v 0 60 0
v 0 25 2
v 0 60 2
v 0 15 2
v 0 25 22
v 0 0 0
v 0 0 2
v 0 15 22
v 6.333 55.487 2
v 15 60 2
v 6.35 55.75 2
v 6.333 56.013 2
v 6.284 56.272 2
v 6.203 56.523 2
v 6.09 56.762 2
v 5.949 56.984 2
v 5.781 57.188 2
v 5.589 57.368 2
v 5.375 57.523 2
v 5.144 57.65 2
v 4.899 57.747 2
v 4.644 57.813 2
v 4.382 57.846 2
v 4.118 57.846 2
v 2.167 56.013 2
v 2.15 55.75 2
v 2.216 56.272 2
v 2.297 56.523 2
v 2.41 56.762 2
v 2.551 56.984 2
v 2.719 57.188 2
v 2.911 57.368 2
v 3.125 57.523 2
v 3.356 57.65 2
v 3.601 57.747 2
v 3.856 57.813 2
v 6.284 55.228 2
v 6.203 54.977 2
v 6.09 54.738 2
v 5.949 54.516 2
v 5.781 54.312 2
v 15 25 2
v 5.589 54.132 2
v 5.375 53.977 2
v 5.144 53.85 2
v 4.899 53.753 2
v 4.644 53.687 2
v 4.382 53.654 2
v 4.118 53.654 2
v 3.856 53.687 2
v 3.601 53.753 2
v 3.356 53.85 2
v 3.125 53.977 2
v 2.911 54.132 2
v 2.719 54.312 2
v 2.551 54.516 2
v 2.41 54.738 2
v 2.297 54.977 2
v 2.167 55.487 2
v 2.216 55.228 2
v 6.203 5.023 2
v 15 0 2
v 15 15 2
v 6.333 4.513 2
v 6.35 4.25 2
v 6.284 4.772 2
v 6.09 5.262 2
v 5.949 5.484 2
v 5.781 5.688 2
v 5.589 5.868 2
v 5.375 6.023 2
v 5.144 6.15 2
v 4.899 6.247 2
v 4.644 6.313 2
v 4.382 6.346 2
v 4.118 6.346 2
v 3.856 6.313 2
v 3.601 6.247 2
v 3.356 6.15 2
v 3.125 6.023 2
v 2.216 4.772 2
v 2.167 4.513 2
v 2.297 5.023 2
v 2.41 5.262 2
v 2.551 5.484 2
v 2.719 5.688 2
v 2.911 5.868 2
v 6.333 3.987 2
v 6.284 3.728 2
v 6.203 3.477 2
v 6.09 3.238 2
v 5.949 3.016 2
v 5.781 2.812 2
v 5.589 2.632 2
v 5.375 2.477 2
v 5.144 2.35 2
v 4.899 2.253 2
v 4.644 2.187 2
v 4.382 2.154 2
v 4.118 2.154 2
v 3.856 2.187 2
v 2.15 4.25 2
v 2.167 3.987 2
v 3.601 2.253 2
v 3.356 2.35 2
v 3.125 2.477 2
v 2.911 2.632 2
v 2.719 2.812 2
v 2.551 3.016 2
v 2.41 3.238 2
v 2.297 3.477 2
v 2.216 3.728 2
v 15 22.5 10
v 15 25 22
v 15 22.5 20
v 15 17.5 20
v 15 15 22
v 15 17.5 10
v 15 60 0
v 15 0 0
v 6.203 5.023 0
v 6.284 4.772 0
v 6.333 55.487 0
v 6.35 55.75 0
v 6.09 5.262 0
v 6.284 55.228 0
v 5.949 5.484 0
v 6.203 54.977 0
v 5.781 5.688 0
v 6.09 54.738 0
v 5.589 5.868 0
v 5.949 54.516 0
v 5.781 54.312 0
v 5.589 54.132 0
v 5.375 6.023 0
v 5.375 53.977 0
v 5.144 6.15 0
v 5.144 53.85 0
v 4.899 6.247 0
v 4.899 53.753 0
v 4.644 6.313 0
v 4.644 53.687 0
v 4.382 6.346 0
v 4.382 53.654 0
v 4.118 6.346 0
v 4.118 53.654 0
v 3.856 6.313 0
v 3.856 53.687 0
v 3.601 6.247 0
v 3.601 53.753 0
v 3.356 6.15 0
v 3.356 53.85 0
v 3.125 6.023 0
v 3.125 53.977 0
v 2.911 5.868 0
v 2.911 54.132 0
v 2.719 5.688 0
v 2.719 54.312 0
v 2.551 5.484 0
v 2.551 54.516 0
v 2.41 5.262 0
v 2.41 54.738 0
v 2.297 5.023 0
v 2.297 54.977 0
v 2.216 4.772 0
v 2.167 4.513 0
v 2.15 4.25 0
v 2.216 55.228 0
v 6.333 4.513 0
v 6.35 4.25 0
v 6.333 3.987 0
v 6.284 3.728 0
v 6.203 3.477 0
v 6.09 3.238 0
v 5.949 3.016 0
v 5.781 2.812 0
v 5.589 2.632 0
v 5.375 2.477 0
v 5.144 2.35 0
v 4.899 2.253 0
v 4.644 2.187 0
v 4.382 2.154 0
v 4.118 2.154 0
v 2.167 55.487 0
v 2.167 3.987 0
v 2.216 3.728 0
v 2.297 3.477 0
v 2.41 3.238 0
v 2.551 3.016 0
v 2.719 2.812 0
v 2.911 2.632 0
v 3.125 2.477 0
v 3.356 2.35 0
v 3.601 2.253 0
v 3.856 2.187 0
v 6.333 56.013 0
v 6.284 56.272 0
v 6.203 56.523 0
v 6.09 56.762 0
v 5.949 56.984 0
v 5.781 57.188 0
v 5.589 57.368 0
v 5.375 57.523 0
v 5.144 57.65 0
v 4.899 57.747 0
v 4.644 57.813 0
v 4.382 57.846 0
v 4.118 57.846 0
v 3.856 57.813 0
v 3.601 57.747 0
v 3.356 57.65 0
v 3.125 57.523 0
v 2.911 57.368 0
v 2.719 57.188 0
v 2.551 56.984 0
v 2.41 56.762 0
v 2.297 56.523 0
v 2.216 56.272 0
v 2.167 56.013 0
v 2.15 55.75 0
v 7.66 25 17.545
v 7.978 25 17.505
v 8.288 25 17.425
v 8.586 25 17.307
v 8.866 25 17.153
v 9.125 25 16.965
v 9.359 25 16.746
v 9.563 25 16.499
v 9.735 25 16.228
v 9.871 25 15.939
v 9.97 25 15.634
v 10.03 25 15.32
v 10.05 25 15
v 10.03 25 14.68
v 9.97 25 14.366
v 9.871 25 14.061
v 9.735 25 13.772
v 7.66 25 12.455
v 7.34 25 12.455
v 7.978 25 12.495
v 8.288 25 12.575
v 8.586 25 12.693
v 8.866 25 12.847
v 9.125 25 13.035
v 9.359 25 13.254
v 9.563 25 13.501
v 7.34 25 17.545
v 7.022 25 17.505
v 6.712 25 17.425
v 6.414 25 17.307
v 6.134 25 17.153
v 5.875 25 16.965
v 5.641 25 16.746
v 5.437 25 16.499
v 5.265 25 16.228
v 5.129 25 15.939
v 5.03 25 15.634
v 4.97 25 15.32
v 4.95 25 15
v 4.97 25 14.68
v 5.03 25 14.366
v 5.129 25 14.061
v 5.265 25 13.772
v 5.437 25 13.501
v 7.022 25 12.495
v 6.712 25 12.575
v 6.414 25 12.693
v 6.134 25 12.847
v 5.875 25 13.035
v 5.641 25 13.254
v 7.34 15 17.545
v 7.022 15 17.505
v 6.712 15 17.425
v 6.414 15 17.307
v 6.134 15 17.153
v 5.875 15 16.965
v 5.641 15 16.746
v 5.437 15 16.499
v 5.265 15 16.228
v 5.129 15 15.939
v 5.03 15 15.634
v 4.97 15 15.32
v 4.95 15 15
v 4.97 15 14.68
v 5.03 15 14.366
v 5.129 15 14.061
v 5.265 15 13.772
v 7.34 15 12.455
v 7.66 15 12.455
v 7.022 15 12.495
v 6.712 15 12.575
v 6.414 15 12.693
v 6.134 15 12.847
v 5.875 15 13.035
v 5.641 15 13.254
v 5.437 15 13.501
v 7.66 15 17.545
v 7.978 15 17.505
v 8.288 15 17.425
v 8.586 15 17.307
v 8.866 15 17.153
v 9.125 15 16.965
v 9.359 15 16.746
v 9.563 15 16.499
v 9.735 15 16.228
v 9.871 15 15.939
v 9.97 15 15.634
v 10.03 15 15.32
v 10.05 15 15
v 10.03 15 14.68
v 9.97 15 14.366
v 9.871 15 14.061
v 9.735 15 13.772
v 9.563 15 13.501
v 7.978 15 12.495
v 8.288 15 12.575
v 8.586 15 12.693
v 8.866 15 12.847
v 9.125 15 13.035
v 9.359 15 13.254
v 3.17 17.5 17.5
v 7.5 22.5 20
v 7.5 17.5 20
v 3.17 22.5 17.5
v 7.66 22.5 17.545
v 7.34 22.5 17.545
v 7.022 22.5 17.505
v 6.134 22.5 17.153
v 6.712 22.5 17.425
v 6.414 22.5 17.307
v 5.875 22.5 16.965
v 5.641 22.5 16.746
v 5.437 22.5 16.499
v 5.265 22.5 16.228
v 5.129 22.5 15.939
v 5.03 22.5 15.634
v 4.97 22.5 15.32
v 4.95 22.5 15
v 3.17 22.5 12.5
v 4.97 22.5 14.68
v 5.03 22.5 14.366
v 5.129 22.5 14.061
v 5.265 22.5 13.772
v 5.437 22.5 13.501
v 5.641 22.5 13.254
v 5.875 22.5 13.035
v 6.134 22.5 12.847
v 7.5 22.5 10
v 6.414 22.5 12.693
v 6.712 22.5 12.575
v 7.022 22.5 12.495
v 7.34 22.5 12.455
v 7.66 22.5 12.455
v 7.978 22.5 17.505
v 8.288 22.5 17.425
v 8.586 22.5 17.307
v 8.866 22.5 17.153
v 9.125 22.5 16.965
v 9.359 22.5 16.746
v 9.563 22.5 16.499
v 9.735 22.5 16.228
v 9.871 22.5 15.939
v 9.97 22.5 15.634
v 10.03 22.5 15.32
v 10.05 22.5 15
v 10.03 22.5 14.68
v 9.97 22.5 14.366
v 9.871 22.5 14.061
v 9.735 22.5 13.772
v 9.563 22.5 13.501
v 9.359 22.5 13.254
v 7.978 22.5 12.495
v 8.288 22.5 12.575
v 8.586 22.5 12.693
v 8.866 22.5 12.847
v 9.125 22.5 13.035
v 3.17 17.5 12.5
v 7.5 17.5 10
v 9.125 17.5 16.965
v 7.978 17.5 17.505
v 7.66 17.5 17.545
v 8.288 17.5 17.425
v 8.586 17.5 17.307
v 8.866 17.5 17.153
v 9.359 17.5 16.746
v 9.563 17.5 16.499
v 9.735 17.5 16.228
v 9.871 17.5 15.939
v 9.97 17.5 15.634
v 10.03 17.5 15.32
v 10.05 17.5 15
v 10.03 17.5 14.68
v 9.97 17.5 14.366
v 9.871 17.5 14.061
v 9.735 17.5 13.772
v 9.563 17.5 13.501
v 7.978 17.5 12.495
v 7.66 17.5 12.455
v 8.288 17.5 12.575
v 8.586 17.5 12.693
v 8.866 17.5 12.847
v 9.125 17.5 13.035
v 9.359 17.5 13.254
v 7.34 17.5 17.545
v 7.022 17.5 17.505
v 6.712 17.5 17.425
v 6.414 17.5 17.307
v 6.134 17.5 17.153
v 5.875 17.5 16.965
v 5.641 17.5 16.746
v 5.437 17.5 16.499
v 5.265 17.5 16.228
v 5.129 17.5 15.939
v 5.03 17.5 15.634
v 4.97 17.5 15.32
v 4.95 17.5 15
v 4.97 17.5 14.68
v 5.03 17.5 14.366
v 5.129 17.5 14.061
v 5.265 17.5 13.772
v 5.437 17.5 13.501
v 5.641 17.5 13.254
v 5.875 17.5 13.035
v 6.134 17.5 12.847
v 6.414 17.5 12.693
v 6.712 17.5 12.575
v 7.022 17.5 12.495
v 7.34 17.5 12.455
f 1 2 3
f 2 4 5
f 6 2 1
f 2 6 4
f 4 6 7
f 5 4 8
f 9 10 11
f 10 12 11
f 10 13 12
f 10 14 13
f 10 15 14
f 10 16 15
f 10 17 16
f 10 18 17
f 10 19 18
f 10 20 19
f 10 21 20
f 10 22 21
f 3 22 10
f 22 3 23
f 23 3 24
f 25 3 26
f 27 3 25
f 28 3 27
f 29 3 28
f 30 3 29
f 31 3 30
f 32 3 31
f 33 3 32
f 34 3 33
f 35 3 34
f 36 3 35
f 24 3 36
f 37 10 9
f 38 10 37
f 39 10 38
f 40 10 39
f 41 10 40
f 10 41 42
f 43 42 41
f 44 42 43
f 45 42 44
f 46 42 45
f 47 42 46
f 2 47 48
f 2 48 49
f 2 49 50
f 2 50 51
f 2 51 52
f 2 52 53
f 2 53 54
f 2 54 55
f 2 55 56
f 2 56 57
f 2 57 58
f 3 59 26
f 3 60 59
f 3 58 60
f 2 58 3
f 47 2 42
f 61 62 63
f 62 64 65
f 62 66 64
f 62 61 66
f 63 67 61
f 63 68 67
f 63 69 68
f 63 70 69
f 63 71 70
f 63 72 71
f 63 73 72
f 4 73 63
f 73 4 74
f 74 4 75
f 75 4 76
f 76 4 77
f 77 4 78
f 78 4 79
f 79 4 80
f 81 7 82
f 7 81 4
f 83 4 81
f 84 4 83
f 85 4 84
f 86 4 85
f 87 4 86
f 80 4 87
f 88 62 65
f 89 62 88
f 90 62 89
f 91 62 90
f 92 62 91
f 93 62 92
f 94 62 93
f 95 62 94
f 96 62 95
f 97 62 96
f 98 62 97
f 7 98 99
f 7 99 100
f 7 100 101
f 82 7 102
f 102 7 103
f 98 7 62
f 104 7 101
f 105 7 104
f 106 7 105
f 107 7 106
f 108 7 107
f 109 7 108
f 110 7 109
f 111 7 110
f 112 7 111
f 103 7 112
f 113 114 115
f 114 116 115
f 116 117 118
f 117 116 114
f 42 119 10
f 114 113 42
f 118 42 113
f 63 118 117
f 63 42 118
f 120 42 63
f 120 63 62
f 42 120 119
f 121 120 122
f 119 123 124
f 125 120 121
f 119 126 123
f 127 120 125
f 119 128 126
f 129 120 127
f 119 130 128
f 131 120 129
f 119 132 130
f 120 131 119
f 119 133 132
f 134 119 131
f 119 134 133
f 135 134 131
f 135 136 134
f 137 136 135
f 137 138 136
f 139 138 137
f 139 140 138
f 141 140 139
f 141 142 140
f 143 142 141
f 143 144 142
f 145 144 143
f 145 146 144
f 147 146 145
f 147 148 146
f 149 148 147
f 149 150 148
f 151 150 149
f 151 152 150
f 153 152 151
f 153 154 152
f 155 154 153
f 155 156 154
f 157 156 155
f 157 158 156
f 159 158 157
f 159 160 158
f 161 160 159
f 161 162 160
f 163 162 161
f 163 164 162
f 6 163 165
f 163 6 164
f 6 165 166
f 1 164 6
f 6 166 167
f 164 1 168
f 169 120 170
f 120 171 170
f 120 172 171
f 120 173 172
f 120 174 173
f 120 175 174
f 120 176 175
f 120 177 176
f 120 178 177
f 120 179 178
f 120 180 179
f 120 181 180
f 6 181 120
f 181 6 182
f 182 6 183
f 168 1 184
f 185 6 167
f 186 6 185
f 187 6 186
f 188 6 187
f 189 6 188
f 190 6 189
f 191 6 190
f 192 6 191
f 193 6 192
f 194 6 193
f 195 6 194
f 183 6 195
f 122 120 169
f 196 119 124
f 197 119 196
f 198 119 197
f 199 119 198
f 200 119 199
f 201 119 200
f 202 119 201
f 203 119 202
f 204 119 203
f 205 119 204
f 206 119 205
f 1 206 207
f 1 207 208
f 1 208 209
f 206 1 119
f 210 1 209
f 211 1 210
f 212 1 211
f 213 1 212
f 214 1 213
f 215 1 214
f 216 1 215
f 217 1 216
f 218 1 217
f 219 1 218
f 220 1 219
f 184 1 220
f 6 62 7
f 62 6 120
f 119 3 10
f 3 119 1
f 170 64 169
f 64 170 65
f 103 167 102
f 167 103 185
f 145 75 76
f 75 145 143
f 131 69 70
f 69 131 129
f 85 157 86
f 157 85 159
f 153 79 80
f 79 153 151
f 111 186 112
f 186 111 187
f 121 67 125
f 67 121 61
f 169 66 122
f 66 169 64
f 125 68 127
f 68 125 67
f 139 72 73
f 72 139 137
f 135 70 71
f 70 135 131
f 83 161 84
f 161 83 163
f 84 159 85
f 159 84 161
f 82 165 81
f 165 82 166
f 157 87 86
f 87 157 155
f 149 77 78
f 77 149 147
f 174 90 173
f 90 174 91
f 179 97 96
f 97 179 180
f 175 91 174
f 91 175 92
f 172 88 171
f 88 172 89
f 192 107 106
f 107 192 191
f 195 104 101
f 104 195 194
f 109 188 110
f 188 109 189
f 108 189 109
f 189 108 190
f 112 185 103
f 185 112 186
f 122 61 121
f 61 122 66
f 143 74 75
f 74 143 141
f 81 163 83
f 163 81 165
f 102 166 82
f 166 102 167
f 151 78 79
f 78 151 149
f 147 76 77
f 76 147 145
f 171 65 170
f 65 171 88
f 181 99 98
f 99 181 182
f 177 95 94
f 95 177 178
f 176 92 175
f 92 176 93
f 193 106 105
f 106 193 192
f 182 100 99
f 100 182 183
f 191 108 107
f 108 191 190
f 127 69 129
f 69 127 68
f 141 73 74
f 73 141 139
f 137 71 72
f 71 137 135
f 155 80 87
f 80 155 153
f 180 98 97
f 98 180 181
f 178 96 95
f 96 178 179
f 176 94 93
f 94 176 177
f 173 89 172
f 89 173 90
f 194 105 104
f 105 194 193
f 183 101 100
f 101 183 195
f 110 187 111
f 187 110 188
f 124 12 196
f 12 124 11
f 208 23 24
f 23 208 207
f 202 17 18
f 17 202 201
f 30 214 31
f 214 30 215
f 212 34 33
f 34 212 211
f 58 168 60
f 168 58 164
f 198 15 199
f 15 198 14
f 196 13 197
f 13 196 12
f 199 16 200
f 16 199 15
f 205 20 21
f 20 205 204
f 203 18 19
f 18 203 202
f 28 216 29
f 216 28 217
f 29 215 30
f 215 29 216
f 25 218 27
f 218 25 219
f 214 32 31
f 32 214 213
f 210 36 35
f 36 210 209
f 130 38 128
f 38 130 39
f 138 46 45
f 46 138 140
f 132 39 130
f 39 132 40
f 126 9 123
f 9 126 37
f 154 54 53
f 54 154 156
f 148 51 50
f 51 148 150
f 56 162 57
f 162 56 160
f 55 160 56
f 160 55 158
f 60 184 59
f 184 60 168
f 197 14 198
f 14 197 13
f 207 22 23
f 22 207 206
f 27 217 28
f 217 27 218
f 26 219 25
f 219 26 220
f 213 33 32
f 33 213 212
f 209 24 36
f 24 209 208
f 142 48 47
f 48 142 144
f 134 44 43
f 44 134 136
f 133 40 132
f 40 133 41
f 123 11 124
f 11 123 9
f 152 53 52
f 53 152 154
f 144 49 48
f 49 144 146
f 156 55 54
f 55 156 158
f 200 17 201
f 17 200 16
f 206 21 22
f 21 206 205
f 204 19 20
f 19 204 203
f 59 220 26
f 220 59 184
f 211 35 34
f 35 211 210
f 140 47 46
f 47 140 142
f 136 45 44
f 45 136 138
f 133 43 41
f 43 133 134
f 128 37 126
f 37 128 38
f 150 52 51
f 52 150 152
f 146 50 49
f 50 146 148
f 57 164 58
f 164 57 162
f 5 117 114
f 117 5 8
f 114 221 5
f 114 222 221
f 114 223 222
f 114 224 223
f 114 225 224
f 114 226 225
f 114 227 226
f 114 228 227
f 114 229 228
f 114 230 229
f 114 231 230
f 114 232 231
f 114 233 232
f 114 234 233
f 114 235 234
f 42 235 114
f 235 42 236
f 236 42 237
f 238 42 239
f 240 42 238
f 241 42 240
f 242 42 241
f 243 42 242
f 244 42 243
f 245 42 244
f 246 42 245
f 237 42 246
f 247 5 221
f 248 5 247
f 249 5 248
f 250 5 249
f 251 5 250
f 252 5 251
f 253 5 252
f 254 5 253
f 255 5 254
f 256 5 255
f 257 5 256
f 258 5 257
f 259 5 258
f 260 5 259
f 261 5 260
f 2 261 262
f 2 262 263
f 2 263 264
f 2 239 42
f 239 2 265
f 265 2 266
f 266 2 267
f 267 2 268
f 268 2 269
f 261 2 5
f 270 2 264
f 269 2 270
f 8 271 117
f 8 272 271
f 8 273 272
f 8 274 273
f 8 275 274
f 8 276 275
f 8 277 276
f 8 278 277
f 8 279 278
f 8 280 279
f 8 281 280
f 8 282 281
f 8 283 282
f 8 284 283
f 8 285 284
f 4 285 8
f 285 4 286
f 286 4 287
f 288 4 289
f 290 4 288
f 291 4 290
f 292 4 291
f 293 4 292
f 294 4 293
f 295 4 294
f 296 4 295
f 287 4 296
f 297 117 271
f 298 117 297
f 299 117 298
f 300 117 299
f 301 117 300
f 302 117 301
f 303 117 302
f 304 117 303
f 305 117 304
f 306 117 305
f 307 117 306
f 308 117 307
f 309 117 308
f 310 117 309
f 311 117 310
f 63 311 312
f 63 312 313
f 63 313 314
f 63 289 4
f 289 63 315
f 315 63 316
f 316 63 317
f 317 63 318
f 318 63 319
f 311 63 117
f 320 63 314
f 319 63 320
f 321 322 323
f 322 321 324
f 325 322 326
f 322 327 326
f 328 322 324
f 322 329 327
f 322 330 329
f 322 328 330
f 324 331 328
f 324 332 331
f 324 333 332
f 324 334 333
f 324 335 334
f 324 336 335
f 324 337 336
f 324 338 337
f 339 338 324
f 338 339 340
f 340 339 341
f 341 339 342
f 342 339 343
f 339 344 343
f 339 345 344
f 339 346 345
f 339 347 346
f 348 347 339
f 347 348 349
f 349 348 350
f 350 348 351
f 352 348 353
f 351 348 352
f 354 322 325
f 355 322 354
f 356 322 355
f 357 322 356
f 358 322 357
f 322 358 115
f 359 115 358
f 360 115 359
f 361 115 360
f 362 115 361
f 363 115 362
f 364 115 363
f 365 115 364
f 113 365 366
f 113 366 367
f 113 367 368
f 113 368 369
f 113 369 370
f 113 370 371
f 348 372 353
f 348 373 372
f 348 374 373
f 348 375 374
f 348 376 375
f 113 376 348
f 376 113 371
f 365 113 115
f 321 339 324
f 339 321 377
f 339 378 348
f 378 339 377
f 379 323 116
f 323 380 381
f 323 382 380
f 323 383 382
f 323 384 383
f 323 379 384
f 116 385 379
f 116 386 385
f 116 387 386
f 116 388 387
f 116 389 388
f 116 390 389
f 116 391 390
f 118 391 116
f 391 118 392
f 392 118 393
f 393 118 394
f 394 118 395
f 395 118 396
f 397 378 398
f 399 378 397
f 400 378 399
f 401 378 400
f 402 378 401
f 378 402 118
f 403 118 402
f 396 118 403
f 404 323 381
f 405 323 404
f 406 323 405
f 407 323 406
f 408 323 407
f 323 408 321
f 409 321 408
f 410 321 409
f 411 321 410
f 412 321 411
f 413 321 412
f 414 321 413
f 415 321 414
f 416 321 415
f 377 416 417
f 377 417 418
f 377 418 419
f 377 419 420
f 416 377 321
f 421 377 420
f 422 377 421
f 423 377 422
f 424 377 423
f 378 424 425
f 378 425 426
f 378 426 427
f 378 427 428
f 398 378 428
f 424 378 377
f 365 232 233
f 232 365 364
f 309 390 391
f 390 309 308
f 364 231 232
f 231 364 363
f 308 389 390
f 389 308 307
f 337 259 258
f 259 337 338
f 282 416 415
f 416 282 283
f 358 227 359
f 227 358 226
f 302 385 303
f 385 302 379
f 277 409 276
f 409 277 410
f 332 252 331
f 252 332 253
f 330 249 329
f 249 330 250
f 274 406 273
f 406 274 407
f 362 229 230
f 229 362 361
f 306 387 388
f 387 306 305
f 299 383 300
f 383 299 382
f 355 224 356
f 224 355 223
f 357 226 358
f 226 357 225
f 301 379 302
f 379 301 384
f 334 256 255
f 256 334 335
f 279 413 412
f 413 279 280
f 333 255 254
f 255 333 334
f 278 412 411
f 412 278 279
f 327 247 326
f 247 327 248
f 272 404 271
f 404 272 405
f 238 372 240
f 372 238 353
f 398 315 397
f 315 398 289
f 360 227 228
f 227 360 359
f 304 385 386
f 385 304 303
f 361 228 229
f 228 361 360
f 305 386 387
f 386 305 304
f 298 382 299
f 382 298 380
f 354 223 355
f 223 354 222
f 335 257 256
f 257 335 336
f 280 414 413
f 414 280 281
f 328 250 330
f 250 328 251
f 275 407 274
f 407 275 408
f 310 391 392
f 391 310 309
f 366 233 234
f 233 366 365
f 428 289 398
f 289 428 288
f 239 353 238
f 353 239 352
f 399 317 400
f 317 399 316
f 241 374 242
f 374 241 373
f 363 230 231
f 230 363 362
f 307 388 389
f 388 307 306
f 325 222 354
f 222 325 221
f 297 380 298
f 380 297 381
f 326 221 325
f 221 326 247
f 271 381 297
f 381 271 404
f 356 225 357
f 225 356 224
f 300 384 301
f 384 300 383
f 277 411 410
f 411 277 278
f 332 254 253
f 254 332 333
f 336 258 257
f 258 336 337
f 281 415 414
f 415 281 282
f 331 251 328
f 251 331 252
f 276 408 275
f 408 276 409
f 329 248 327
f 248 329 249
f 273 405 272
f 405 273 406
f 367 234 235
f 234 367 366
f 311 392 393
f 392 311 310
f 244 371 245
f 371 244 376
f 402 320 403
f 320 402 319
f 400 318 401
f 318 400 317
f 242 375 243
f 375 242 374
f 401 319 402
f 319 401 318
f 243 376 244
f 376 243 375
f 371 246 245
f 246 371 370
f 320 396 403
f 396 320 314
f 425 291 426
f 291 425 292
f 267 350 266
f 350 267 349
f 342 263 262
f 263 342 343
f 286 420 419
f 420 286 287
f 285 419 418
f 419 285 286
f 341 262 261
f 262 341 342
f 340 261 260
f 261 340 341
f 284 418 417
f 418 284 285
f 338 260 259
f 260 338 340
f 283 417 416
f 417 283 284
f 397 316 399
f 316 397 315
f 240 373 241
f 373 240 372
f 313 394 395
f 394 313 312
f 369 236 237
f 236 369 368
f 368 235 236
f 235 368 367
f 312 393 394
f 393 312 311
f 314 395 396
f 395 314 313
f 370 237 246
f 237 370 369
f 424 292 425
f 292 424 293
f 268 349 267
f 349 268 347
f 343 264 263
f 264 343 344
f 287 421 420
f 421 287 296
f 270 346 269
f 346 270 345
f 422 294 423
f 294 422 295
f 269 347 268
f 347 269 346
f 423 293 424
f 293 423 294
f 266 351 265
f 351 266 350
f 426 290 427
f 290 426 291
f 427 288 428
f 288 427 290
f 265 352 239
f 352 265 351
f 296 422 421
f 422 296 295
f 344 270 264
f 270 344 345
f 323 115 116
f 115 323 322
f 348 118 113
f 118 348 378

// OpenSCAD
$fn = 50;
platethickness = 2;

union(){
    difference(){
        cube([15, 60, platethickness]);
        translate([2.2 + 2.05, 2.2 + 2.05, 0]) cylinder(platethickness, 2.1, 2.1);
        translate([2.2 + 2.05, 60 - (2.2 + 2.05), 0]) cylinder(platethickness, 2.1, 2.1);
    }
    difference(){
        translate([0, 15, platethickness]) cube([15, 10, 20]);
        rotate([90, 0, ]) translate([15/2, 15, -15 - 15/2]) rotate([0, 0, 90]) cylinder(5, 5, 5, $fn = 6);
        rotate([90, 0, 0]) translate([15/2, 15, -15 - 10]) cylinder(10, 5.1/2, 5.1/2);
        translate([15/2, 17.5, 10]) cube([10, 5, 10]);
    }
}
